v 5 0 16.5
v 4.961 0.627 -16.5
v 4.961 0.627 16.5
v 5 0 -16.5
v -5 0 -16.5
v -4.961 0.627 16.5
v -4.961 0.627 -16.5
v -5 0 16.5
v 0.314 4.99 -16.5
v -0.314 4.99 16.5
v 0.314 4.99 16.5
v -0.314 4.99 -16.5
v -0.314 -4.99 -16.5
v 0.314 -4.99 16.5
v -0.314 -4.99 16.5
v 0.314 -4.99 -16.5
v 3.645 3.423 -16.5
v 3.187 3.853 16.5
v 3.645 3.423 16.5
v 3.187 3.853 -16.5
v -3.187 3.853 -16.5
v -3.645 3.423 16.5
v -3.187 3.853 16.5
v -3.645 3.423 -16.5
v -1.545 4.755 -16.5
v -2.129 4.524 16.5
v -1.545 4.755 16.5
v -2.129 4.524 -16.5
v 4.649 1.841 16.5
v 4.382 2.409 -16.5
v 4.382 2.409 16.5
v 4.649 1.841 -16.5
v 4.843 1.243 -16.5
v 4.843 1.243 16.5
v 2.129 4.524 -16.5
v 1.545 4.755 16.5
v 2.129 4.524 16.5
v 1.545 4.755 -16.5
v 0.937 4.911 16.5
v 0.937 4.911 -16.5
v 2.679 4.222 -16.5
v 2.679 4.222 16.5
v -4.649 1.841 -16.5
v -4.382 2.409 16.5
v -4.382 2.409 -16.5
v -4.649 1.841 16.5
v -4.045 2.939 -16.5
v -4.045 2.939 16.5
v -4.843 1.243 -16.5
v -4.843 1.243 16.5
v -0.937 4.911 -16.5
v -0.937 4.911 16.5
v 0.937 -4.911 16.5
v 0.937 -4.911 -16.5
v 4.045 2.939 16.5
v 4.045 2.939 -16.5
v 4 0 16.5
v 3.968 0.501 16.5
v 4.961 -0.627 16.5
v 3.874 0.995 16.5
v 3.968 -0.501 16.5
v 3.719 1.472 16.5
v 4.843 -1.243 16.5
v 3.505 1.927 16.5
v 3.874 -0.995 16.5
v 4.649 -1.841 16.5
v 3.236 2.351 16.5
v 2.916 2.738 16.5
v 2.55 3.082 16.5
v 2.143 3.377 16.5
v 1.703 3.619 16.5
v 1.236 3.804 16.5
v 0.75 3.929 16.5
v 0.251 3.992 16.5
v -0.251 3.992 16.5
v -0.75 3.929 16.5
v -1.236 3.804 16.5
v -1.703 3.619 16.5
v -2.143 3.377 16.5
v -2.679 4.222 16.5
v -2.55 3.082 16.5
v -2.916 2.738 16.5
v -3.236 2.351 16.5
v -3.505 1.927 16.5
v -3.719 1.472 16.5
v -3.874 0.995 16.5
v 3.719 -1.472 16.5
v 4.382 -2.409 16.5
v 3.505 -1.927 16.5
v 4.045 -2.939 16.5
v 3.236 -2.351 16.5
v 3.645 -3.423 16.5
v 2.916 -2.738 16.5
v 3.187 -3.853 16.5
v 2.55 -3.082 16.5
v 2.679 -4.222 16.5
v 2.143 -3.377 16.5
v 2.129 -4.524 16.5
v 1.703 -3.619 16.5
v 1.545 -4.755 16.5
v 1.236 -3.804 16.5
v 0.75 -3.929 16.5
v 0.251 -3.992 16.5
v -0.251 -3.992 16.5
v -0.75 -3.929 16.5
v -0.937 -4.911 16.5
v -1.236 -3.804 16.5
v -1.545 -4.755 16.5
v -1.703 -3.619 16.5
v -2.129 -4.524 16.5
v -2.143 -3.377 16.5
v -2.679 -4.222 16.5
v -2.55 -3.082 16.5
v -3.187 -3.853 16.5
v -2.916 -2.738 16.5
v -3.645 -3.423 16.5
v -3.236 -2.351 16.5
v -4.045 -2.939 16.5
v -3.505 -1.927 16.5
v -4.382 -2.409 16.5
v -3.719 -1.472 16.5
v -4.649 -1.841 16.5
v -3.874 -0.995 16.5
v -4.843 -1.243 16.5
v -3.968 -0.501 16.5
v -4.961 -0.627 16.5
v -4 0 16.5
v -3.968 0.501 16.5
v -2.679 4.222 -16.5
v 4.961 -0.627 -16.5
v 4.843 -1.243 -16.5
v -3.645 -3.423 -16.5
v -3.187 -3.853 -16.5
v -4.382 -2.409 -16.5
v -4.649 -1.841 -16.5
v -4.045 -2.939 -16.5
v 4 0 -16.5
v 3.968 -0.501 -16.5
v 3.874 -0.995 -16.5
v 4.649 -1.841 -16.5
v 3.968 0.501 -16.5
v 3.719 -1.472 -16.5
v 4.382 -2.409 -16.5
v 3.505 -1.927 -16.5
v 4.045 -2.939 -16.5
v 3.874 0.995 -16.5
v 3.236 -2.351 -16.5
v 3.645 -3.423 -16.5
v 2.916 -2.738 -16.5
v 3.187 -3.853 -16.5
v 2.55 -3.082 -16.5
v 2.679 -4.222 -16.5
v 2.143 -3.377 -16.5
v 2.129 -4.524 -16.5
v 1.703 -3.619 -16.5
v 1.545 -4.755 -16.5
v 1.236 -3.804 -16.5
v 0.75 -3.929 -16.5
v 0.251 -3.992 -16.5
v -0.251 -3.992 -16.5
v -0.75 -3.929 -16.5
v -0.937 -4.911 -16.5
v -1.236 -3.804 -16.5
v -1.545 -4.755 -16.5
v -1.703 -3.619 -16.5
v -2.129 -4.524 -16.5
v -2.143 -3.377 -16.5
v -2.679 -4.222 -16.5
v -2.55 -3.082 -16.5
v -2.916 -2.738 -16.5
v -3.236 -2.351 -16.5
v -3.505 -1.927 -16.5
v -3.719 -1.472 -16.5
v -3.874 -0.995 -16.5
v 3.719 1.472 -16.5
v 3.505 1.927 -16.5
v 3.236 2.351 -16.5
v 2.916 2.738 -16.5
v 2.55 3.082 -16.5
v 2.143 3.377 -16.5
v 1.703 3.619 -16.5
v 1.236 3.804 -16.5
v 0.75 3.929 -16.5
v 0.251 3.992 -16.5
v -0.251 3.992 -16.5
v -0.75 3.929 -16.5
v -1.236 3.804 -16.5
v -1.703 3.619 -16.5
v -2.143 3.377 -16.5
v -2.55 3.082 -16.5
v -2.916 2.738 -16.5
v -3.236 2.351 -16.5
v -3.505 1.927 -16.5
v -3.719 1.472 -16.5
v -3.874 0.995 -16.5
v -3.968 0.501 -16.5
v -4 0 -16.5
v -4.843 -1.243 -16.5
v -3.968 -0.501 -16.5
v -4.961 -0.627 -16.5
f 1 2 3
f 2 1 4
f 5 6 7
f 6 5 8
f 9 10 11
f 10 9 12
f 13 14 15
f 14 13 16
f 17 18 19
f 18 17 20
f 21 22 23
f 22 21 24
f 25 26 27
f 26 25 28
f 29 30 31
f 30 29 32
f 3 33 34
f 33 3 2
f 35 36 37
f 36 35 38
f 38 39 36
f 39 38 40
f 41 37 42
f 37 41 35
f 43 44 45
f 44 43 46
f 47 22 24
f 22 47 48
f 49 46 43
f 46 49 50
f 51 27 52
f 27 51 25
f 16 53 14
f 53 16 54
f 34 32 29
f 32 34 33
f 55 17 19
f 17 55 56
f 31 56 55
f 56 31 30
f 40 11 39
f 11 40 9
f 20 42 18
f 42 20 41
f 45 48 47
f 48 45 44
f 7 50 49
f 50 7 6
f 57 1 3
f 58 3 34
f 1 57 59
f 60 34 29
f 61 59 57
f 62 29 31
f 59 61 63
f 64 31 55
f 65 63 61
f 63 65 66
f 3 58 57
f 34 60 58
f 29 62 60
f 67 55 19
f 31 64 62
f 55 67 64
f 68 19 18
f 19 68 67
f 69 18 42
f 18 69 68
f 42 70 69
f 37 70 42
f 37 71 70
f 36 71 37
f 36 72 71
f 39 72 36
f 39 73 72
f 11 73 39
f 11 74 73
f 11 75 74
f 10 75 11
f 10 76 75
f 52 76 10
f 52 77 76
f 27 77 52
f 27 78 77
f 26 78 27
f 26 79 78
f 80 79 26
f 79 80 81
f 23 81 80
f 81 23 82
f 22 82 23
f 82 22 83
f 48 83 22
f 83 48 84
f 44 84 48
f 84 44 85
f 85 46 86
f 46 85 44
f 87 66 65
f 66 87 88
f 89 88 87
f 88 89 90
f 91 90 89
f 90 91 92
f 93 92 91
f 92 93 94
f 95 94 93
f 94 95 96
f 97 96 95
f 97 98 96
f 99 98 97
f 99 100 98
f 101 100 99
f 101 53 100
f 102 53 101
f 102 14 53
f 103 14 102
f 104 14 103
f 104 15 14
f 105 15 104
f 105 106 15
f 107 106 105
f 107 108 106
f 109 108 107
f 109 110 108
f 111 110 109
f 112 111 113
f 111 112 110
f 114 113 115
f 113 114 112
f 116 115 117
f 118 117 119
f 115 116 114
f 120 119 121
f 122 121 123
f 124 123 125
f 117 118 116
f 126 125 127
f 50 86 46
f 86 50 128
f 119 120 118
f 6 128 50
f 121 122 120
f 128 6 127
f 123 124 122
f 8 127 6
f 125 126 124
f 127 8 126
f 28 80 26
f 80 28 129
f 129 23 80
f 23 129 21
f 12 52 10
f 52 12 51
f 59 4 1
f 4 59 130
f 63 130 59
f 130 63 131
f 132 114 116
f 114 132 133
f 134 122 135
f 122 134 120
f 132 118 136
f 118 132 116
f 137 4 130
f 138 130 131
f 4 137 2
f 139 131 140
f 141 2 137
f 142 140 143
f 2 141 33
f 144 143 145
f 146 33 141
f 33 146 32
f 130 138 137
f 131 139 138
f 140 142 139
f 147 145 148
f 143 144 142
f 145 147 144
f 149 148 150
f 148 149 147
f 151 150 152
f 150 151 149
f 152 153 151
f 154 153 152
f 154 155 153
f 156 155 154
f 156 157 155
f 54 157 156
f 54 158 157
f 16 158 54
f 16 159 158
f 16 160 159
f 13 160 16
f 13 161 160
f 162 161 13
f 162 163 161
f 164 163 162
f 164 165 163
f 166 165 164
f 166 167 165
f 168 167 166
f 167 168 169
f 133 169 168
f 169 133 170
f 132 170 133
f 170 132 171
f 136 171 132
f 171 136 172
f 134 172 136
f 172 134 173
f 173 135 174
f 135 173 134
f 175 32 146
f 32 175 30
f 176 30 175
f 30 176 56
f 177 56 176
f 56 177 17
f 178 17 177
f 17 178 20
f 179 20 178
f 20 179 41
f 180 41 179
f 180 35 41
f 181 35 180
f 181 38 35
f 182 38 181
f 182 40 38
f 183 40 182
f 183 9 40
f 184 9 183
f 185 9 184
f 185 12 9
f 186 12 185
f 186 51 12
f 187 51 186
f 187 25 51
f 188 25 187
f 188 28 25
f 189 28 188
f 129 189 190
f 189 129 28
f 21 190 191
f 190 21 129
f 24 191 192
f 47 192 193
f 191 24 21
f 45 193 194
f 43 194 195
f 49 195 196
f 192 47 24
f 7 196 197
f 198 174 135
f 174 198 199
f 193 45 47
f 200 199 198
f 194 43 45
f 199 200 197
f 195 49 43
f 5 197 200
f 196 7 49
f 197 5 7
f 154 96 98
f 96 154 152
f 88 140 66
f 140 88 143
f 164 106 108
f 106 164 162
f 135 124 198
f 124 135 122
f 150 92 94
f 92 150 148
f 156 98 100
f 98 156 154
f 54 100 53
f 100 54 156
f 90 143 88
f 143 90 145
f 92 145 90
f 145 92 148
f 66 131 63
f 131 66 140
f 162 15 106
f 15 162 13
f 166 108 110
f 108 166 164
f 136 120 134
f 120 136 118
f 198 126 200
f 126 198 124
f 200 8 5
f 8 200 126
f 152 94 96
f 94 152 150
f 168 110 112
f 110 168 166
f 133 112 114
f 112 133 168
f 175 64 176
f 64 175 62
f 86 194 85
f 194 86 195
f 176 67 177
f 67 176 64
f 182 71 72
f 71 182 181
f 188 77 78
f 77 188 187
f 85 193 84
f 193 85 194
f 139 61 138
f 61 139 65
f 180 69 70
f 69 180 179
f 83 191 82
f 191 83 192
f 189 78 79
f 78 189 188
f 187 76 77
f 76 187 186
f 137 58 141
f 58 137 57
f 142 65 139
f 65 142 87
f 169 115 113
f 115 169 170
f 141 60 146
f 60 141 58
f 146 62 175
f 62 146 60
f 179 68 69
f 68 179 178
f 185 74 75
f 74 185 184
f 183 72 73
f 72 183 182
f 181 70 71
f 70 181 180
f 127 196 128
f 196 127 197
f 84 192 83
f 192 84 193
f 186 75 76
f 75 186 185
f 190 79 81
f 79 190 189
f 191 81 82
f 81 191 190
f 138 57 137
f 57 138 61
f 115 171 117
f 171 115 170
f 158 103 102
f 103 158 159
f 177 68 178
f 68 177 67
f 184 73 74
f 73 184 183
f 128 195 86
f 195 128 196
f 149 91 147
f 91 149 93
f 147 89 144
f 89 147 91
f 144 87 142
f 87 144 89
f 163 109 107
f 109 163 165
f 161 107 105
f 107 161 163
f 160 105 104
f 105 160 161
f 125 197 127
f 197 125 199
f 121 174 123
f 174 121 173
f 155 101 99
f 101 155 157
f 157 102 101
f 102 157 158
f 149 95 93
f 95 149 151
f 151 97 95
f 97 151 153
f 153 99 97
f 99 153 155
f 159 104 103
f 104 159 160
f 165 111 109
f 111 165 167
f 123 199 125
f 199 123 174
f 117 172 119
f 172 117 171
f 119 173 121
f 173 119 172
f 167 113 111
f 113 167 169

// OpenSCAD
$fn = 50;


difference() {
	union() {
		translate(v = [0, 0, -16.5000000000]) {
			cylinder(h = 33, r = 5.0000000000);
		}
	}
	union() {
		translate(v = [0, 0, -100.0000000000]) {
			cylinder(h = 200, r = 4);
		}
	}
}
